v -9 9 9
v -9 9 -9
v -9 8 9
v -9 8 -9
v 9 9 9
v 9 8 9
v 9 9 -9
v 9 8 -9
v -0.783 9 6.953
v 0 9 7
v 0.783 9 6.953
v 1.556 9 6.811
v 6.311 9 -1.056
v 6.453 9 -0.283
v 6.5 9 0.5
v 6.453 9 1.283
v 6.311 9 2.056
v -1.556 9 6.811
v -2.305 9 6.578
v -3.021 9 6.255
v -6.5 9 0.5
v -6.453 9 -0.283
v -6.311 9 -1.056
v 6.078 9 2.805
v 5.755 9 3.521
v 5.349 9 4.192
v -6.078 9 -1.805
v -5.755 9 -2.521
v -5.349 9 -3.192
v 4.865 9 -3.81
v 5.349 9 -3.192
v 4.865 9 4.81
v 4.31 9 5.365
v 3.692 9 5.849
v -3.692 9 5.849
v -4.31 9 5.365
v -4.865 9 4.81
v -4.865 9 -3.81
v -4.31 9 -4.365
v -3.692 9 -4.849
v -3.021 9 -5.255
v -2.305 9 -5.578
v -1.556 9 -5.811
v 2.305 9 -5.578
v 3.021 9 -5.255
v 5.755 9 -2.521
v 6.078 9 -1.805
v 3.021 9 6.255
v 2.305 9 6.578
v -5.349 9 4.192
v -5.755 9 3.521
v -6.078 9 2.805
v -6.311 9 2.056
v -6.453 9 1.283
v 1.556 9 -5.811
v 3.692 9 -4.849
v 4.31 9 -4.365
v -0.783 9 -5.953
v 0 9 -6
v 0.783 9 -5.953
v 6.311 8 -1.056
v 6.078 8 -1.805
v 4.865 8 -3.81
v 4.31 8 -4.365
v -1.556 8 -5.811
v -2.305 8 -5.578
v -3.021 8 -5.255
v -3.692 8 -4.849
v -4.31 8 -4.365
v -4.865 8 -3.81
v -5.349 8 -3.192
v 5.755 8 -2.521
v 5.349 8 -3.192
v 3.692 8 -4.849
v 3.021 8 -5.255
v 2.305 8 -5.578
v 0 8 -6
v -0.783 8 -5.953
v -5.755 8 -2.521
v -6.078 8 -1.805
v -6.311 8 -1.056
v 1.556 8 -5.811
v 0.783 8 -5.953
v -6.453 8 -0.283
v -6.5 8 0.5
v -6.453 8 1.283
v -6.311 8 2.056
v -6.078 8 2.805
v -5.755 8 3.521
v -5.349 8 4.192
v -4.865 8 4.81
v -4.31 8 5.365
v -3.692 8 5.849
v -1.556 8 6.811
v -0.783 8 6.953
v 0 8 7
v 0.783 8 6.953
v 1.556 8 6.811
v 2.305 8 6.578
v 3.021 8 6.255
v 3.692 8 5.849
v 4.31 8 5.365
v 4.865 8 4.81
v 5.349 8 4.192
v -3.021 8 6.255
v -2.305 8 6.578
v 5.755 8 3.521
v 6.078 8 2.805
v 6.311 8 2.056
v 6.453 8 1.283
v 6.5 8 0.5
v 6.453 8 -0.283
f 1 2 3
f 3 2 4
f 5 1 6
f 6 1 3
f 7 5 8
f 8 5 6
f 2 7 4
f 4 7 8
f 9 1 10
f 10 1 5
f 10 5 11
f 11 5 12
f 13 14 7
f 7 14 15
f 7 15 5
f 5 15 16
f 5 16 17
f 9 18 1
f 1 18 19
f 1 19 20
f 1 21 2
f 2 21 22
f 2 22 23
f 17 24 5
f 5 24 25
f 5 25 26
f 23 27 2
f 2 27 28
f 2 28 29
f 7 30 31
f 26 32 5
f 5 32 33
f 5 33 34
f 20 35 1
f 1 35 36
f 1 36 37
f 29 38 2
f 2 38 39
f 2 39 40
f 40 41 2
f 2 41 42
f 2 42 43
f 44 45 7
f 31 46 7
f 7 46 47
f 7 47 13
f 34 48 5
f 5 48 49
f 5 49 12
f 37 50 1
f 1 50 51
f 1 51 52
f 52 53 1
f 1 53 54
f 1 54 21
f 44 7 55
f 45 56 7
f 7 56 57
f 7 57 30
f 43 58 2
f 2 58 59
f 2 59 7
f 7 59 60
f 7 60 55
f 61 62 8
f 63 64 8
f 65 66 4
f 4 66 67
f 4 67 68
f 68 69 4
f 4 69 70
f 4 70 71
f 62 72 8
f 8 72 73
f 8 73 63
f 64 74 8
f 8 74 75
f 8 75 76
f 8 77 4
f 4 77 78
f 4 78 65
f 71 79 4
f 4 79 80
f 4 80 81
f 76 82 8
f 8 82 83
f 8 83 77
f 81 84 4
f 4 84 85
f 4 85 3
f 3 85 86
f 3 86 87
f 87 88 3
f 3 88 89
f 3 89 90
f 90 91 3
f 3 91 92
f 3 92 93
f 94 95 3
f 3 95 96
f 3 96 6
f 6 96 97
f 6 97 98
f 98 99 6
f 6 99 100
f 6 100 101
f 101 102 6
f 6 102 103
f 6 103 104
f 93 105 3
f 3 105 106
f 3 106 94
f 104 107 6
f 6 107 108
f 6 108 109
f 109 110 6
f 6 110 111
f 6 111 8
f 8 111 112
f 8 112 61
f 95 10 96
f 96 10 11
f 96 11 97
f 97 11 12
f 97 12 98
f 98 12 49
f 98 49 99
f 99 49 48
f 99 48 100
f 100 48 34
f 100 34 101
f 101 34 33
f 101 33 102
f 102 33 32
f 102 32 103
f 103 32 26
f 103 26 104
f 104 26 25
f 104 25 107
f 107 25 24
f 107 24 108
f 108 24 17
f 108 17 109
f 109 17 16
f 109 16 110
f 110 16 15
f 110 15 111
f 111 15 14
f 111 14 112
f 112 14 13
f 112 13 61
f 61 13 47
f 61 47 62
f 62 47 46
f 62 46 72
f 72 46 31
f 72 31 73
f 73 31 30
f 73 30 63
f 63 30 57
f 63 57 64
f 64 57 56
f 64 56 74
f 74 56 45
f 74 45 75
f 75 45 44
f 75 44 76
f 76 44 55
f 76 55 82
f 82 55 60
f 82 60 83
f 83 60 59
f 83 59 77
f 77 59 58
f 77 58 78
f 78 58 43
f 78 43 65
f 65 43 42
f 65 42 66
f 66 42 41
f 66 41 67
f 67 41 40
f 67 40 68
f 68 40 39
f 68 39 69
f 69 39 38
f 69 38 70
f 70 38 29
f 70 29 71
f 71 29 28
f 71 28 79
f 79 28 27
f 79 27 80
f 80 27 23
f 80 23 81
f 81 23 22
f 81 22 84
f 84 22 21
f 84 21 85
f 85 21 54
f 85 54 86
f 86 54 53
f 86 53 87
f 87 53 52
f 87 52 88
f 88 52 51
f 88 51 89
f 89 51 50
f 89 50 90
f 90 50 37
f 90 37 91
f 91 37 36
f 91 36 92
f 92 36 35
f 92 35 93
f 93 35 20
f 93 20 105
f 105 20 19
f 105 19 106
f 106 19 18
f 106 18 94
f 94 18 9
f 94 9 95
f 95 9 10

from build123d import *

# Parameters (mm, degrees)
SKETCH_1_W          = 18
SKETCH_1_H          = 18
EXTRUDE_1_DEPTH     = 8
CUT_EXTRUDE_START   = 8
SKETCH_5_W          = 16
SKETCH_5_H          = 17
CUT_EXTRUDE_6_DEPTH = 7
EXTRUDE_START       = 8
SKETCH_6_W          = 18
SKETCH_6_H          = 18
EXTRUDE_2_DEPTH     = 1
CUT_EXTRUDE_START_2 = 9
SKETCH_7_R          = 6.5
CUT_EXTRUDE_7_DEPTH = 1
SKETCH_11_W         = 18
SKETCH_11_H         = 18
CUT_EXTRUDE_9_DEPTH = 8


with BuildPart() as part:
    # 스케치1 → 보스-돌출1 (new body)
    with BuildSketch(Plane(origin=(0, 0, 0), x_dir=(1, 0, 0), z_dir=(0, 1, 0))):
        Rectangle(SKETCH_1_W, SKETCH_1_H)
    extrude(amount=EXTRUDE_1_DEPTH)

    # 스케치5 → 컷-돌출6 (cut)
    with BuildSketch(Plane(origin=(0, 0, 0), x_dir=(1, 0, 0), z_dir=(0, 1, 0)).offset(CUT_EXTRUDE_START)):
        with Locations((0, 0.5)):
            Rectangle(SKETCH_5_W, SKETCH_5_H)
    extrude(amount=-CUT_EXTRUDE_6_DEPTH, mode=Mode.SUBTRACT)

    # 스케치11 → 컷-돌출9 (cut)
    with BuildSketch(Plane.XZ):
        Rectangle(SKETCH_11_W, SKETCH_11_H)
    extrude(amount=-CUT_EXTRUDE_9_DEPTH, mode=Mode.SUBTRACT)


with BuildPart() as body_2:
    # 스케치6 → 보스-돌출2 (new body)
    with BuildSketch(Plane(origin=(0, 0, 0), x_dir=(1, 0, 0), z_dir=(0, 1, 0)).offset(EXTRUDE_START)):
        Rectangle(SKETCH_6_W, SKETCH_6_H)
    extrude(amount=EXTRUDE_2_DEPTH)

    # 스케치7 → 컷-돌출7 (cut)
    with BuildSketch(Plane(origin=(0, 0, 0), x_dir=(1, 0, 0), z_dir=(0, 1, 0)).offset(CUT_EXTRUDE_START_2)):
        with Locations(Location((0, -0.5, 0), (0, 0, 270))):
            Circle(SKETCH_7_R)
    extrude(amount=-CUT_EXTRUDE_7_DEPTH, mode=Mode.SUBTRACT)


solid = body_2.part
